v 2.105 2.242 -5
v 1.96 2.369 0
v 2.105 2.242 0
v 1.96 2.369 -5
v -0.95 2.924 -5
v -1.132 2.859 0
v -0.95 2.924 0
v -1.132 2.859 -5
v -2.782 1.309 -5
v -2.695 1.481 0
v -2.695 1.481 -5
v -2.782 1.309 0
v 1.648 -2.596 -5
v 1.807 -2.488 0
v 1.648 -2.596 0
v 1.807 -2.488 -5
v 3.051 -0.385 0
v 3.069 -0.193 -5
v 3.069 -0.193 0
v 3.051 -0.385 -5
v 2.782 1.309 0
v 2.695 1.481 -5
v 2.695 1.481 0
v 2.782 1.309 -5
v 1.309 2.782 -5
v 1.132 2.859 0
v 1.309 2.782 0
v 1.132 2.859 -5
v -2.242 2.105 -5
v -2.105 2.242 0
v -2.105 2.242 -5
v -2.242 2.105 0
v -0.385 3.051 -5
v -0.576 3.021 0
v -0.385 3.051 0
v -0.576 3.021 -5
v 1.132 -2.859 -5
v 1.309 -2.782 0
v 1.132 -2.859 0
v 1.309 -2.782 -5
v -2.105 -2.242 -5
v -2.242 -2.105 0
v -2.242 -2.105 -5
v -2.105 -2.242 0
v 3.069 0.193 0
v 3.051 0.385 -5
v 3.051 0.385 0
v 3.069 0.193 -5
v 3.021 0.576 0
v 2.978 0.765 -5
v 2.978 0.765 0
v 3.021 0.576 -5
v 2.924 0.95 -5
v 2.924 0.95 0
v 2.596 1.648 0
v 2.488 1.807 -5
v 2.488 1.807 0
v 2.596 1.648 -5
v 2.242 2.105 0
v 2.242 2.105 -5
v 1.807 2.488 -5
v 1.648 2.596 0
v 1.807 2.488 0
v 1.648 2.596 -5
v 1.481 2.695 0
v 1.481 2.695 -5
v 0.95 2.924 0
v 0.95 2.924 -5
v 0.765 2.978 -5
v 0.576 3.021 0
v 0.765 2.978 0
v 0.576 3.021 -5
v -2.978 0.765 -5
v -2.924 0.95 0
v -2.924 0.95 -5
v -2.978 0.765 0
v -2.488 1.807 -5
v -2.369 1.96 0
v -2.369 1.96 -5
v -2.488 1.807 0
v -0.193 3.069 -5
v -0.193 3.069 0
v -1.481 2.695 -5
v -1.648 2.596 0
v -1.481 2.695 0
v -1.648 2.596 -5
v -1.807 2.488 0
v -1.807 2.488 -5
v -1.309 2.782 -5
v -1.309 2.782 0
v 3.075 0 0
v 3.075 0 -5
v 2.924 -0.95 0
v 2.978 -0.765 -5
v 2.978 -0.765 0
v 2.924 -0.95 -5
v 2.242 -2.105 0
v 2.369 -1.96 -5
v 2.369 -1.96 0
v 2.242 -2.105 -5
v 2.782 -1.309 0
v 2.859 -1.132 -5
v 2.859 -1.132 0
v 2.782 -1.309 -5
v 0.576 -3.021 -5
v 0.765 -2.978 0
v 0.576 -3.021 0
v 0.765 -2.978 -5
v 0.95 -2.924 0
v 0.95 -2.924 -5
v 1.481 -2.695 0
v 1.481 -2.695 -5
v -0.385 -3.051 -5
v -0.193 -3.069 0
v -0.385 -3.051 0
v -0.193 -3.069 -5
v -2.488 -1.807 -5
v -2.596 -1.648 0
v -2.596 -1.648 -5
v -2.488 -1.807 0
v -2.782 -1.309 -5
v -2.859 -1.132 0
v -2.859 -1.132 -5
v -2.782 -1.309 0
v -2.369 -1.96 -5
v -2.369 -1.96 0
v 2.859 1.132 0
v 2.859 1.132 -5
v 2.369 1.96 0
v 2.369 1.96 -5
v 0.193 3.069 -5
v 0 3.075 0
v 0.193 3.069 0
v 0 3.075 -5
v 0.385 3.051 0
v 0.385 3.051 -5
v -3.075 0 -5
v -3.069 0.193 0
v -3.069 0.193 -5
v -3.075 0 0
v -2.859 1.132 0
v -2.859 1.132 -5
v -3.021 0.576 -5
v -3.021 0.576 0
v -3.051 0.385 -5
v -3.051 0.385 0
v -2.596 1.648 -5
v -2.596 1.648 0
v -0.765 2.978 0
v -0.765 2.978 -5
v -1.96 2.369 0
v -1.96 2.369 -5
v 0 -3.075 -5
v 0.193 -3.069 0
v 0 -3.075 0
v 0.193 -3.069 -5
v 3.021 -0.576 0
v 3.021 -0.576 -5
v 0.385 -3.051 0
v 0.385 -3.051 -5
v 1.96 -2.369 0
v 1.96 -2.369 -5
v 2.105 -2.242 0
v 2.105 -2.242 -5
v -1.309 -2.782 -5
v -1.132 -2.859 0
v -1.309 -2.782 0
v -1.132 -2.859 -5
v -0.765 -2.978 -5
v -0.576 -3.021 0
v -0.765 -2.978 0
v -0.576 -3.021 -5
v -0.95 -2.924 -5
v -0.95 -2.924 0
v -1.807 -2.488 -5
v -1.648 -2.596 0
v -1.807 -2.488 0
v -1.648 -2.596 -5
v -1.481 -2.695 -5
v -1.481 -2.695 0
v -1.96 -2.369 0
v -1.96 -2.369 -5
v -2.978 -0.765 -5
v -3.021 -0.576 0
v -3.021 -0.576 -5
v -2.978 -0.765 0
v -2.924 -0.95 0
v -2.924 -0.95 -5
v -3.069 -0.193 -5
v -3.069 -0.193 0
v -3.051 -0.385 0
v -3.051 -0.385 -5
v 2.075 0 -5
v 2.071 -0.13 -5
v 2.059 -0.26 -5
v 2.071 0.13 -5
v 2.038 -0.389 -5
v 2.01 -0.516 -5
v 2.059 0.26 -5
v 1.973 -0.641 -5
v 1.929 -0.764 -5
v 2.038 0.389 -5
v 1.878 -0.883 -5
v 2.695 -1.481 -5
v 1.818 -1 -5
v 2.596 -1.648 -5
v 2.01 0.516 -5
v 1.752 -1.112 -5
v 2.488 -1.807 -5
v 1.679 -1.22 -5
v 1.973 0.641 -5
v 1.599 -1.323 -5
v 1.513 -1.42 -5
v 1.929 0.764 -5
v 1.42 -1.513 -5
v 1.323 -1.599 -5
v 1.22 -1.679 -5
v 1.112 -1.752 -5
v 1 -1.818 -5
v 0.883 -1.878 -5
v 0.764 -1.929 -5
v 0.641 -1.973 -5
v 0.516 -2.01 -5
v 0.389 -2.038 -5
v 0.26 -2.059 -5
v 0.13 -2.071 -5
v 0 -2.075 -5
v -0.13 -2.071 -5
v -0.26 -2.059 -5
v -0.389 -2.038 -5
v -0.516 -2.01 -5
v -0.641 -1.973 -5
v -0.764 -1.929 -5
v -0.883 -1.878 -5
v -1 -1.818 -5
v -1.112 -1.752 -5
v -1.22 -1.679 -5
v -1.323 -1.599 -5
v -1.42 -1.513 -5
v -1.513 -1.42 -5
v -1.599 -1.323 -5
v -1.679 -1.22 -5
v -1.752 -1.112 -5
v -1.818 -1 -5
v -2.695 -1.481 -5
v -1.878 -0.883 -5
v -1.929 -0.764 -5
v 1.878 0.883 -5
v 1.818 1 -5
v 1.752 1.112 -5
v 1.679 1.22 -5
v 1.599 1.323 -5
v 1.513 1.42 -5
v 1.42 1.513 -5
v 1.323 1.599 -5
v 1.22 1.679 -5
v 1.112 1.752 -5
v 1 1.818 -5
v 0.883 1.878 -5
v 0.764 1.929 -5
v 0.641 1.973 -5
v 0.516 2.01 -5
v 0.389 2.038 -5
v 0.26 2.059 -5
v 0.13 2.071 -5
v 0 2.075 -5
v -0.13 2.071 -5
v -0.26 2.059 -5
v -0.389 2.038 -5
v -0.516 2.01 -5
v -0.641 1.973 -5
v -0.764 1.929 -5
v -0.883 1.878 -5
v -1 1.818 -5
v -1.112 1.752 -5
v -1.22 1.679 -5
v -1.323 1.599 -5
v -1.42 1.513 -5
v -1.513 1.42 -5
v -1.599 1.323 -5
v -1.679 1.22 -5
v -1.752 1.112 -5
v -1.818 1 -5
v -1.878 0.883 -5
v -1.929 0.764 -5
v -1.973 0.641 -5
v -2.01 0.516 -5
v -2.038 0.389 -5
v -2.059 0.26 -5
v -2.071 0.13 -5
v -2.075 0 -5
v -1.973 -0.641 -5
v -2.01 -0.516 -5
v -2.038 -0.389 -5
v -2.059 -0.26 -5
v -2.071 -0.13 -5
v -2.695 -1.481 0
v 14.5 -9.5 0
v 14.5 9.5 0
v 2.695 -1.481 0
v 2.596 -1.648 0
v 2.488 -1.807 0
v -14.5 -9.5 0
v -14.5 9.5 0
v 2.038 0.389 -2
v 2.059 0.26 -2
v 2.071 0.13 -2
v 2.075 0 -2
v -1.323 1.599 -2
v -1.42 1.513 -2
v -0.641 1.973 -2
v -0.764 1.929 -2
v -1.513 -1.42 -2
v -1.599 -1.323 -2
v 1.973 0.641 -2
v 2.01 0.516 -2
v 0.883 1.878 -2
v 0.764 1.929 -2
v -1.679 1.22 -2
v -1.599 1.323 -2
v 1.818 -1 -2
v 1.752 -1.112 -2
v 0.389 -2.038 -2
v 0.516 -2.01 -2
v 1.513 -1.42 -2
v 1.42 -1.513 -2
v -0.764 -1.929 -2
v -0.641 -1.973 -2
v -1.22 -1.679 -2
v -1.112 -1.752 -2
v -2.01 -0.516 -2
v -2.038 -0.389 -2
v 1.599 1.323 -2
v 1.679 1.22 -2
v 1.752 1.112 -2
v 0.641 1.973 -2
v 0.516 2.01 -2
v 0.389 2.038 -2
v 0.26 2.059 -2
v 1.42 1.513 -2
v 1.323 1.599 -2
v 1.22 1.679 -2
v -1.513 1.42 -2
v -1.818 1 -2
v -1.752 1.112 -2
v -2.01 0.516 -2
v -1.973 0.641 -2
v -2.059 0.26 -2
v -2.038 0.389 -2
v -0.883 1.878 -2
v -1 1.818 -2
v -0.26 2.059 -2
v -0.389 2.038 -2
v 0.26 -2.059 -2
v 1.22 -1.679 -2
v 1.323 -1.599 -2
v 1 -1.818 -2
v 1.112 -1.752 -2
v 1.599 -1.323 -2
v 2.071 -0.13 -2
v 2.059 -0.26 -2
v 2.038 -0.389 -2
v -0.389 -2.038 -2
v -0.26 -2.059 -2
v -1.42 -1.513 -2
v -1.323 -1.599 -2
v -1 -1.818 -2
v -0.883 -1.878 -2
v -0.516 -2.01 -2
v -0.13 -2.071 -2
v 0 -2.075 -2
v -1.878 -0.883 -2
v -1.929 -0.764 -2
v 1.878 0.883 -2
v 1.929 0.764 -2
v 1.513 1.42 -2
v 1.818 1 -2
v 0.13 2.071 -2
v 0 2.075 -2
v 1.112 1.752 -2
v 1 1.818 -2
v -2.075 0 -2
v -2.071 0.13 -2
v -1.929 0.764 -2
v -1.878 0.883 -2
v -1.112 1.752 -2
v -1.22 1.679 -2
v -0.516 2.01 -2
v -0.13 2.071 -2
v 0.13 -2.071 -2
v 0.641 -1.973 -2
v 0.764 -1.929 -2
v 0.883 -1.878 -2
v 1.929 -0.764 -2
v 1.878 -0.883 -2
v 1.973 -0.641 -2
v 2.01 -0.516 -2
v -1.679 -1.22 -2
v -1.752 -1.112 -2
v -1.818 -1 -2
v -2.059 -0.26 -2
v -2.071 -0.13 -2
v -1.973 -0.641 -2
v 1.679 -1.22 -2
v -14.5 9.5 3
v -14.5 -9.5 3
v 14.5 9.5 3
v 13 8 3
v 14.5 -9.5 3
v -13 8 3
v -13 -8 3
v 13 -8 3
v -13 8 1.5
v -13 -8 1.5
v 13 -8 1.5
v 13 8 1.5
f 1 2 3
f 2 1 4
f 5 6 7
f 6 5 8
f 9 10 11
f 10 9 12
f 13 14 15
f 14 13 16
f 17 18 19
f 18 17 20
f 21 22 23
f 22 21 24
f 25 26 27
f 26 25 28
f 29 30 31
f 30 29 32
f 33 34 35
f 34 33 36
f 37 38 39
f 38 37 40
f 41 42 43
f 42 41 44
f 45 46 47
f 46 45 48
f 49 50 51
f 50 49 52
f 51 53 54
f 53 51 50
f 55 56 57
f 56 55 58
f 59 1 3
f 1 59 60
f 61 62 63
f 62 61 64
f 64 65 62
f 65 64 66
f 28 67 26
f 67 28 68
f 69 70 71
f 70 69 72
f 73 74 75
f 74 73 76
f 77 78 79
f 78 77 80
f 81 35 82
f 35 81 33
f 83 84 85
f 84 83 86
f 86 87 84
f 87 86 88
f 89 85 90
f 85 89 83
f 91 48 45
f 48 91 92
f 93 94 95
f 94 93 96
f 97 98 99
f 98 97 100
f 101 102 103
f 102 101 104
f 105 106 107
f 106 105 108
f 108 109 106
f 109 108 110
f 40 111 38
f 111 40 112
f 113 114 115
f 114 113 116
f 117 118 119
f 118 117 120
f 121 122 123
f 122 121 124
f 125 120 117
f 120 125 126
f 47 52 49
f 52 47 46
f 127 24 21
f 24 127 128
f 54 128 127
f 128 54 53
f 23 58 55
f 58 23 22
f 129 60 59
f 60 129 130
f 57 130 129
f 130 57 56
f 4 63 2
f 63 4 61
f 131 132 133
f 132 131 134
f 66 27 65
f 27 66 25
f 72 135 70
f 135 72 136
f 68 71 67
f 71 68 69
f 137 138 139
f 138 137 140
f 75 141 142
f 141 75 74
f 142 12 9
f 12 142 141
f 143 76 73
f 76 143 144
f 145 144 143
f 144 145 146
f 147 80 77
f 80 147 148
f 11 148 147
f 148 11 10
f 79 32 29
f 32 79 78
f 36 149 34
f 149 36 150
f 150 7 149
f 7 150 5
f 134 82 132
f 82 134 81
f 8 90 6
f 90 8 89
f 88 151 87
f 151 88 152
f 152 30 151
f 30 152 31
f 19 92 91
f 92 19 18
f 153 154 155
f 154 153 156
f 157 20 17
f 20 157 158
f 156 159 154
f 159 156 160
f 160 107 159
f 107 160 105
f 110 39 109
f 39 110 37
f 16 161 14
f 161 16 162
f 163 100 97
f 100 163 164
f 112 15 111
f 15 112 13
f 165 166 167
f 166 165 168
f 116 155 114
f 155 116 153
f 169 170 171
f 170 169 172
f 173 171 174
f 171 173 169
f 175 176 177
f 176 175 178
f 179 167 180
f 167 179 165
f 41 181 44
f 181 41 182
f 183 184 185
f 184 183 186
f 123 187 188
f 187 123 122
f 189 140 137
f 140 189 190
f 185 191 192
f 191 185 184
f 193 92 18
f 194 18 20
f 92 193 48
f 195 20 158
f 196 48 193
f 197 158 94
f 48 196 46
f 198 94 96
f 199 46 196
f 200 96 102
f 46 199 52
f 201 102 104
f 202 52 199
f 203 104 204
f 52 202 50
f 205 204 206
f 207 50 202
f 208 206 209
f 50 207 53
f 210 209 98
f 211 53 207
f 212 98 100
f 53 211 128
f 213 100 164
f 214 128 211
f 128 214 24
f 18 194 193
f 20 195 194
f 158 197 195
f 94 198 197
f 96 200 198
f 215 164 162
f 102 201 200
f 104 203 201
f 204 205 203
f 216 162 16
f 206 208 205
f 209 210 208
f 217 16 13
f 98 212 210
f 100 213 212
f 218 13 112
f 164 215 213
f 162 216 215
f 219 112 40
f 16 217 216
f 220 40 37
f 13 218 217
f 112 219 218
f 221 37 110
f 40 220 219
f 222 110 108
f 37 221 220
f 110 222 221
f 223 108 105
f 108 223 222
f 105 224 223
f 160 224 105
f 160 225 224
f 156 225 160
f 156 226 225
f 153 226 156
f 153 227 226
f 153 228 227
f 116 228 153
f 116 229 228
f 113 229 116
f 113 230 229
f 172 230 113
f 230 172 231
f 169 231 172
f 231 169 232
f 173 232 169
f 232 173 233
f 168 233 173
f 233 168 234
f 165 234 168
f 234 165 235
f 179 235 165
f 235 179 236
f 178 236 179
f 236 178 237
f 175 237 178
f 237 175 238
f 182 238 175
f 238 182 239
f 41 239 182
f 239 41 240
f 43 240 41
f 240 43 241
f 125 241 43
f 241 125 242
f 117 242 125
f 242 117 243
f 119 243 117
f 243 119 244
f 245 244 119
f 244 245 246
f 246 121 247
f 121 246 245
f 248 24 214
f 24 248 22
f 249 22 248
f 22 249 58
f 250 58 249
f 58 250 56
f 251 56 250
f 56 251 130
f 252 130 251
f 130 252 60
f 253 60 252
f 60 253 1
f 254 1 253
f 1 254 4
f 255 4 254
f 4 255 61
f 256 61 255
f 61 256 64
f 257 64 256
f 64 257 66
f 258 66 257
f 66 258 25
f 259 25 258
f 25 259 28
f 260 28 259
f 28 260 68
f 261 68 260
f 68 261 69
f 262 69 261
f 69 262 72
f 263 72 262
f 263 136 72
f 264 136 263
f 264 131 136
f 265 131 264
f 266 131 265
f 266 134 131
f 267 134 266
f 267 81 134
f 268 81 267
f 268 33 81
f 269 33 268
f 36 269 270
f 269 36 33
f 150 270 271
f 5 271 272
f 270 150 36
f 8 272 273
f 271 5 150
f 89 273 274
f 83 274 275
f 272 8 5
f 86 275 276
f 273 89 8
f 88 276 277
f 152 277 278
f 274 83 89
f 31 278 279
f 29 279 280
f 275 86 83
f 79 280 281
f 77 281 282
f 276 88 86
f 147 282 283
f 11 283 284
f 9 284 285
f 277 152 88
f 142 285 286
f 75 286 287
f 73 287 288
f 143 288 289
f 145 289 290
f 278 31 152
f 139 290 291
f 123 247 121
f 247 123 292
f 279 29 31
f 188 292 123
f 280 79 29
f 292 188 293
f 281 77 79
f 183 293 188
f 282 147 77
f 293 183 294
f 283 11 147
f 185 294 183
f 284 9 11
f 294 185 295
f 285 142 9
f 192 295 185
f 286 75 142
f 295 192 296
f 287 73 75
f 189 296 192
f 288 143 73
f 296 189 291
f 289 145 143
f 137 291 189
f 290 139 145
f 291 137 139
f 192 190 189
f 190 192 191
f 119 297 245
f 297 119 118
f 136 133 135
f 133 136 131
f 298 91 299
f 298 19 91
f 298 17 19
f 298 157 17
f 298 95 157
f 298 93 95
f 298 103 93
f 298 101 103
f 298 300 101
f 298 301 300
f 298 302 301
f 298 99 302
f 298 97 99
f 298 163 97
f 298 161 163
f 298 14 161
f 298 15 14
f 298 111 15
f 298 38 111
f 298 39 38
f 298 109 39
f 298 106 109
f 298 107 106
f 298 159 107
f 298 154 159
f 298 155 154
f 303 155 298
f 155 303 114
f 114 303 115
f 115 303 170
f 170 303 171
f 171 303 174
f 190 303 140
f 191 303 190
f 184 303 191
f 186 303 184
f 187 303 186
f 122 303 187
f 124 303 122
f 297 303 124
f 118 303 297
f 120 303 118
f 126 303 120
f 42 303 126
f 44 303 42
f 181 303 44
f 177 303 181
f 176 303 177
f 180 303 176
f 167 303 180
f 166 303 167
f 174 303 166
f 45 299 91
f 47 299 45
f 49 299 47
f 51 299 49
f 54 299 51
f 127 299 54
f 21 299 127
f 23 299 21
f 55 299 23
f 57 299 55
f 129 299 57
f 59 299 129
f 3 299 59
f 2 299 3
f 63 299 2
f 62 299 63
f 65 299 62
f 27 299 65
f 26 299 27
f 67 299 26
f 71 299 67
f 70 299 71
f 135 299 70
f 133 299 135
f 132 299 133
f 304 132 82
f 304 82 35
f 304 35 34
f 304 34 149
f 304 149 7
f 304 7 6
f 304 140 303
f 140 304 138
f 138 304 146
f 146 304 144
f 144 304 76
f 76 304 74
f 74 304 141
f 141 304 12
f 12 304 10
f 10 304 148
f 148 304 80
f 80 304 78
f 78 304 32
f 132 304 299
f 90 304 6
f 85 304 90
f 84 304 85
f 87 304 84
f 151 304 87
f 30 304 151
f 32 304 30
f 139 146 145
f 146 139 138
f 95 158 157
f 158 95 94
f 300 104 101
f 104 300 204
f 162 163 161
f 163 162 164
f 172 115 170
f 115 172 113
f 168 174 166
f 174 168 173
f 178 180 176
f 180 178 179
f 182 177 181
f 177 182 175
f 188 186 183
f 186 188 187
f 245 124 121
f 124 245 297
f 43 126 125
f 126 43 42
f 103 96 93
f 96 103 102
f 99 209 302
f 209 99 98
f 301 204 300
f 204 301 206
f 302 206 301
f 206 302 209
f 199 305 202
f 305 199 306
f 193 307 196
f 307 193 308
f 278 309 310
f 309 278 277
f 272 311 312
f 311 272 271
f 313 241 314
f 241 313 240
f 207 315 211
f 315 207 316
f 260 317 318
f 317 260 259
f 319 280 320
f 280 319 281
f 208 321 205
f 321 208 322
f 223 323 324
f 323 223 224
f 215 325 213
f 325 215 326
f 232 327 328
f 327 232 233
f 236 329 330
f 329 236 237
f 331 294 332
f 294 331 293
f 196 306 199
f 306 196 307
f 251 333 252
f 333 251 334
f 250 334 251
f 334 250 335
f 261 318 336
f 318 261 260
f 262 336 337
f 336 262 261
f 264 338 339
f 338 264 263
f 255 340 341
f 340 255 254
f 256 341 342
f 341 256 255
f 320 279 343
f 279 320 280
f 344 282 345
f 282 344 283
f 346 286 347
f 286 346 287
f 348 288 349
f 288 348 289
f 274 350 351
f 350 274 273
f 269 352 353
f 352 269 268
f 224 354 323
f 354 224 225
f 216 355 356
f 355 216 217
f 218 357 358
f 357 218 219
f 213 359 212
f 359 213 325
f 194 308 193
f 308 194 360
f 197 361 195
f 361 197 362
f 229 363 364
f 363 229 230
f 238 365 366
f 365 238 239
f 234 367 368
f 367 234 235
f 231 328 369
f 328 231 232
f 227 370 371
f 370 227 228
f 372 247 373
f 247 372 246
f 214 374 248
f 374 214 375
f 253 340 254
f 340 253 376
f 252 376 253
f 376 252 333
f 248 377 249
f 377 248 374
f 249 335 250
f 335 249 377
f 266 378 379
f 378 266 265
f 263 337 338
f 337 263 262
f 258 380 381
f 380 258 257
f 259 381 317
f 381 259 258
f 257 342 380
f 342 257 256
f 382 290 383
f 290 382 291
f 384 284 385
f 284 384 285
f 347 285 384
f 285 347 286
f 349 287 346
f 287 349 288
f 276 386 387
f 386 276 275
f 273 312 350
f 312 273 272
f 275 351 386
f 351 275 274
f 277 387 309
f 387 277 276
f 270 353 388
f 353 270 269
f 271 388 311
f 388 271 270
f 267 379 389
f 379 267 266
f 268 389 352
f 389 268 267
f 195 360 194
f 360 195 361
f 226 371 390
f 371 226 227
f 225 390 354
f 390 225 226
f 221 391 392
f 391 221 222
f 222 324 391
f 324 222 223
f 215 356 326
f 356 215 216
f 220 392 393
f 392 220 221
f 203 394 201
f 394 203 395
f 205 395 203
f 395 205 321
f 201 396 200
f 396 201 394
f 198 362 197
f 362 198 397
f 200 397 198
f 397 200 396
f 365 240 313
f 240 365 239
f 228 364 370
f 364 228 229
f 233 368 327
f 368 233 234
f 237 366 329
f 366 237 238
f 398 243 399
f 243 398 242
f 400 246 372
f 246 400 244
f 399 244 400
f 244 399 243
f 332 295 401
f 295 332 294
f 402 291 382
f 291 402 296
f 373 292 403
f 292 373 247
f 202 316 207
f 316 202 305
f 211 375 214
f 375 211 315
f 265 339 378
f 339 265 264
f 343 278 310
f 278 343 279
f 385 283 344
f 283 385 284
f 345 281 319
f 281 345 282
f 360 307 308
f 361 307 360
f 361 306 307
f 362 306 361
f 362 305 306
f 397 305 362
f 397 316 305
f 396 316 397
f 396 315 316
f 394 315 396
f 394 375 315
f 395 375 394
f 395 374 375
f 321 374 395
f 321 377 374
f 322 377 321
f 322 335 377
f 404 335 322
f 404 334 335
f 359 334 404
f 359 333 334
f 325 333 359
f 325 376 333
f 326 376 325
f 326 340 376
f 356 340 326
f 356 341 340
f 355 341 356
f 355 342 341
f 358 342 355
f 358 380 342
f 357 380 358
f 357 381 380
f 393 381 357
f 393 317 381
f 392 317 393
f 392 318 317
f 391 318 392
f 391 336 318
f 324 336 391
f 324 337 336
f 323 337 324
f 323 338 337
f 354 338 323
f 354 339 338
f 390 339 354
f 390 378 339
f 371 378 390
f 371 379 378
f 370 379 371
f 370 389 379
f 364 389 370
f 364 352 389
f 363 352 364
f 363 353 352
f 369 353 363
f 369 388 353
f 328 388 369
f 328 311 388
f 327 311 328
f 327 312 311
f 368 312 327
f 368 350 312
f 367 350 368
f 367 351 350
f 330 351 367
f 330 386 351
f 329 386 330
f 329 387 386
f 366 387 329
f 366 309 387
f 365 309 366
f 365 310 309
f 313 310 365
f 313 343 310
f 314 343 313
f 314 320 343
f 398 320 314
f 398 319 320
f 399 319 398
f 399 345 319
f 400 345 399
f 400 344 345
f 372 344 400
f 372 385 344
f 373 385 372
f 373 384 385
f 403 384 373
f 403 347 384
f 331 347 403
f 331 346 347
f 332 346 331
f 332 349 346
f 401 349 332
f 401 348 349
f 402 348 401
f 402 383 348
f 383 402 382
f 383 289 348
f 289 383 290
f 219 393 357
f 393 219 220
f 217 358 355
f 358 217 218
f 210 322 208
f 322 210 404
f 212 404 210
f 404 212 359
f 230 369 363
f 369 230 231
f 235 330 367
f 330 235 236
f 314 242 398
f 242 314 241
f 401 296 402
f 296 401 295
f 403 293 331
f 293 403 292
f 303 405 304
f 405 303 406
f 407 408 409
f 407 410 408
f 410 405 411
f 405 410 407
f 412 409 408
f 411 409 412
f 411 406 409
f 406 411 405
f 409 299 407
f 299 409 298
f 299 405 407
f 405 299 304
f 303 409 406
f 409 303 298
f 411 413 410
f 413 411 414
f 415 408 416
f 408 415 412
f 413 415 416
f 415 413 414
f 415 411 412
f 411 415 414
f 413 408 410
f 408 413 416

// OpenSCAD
// file: bottom_pin.scad
// This is the bottom pin which is used to mount the sample holders into the machines.
// Since we use this for most of our models, it makes sense to have a small 'template' which we can just add the model where it's needed...
// To do so, add a line with "use<bottom_pin.scad>"
// And then just call "pin();" wherever you need the pin :)
$fn=100;
module pin(diameter=6.15, height=20, cap_depth=2)
{
    translate([0,0,-height]) difference(){
        cylinder(d=diameter,h=height);
        cylinder(d=diameter-2,h=height-cap_depth);
    }
}
pin();
// main file
// Good for putting something very small on top of a needle into the scanner
$fn=100;

use <bottom_pin.scad>

pin(height=5);
translate([0,0,1.5])
difference(){
    // outer
    cube([29,19,3], center=true);
    // measured bottom, rounded up to the next mm
    #translate([0,0,1.5]) cube([26,16,3], center=true);   
}
